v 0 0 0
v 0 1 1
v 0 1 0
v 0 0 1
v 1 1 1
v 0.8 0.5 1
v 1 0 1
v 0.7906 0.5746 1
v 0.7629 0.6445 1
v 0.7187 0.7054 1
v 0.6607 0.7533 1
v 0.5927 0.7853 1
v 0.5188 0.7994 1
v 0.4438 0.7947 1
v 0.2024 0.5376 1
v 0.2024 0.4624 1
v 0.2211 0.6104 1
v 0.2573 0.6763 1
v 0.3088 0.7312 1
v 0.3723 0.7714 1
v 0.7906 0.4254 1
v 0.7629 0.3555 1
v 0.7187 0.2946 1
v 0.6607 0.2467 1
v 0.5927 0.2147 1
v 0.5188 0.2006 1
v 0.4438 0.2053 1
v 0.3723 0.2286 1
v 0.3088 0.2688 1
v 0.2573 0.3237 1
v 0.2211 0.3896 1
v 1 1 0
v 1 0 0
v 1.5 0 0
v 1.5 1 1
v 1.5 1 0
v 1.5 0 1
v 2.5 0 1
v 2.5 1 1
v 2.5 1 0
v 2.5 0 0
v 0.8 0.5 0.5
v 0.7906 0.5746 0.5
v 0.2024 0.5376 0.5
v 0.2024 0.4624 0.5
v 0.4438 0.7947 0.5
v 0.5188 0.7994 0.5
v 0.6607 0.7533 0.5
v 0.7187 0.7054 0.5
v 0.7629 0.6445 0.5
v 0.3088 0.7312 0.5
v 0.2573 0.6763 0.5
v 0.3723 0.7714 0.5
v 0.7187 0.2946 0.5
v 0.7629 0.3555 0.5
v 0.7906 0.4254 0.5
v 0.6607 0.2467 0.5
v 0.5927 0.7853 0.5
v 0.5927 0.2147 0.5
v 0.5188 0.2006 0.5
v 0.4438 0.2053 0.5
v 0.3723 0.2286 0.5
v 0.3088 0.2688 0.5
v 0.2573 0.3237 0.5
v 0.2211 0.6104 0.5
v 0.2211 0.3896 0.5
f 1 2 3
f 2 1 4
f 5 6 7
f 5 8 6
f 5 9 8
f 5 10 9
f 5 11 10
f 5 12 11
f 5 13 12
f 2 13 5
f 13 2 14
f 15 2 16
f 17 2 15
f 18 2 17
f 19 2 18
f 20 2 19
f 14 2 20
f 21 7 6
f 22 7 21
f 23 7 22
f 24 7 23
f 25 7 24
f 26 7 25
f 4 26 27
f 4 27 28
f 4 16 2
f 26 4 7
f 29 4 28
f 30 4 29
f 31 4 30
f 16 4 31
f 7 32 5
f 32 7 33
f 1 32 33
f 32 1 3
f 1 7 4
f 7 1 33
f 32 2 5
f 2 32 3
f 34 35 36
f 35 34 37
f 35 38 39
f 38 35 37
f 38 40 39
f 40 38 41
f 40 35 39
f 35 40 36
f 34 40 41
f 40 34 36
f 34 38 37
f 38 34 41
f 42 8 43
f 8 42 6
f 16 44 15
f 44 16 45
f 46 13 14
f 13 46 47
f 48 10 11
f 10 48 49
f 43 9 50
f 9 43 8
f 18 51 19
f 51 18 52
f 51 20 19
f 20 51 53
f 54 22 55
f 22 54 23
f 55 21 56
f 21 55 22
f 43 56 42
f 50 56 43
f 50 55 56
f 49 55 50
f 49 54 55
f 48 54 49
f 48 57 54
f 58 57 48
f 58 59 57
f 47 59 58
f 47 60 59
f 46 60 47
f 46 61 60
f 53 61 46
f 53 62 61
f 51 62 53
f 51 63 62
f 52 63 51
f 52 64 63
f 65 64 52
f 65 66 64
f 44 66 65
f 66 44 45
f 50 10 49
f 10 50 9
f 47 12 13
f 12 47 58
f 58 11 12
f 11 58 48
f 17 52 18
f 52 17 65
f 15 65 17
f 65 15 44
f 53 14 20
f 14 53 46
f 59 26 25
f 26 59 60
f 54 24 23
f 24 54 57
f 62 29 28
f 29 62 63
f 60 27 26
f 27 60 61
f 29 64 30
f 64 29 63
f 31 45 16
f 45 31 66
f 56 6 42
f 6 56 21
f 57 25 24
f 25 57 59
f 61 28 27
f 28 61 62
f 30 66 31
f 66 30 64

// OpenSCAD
// Generated by SolidPython 1.1.1 on 2021-10-28 00:05:41
$fn = 25;


difference() {
	union() {
		cube();
		translate(v = [1.5000000000, 0, 0]) {
			cube();
		}
	}
	translate(v = [0.5000000000, 0.5000000000, 0.5000000000]) {
		cylinder(h = 0.6000000000, r = 0.3000000000);
	}
}
/***********************************************
*********      SolidPython code:      **********
************************************************
 
# SolidPython example code 
# Brygg Ullmer, Clemson University

from solid import *        # load in SolidPython/SCAD support code

c1 = cube()
c2 = translate([1.5, 0, 0])(c1)
outGeom = c1 + c2

y1 = cylinder(r=.3, h=.6)
y2 = translate([.5, .5, .5])(y1)
outGeom -= y2

radialSegments = 25; hdr = '$fn = %s;' % radialSegments # create a header for the export
scad_render_to_file(outGeom, 'exSolid03.scad', file_header=hdr) # write the .scad file

### end ###

 
 
************************************************/
